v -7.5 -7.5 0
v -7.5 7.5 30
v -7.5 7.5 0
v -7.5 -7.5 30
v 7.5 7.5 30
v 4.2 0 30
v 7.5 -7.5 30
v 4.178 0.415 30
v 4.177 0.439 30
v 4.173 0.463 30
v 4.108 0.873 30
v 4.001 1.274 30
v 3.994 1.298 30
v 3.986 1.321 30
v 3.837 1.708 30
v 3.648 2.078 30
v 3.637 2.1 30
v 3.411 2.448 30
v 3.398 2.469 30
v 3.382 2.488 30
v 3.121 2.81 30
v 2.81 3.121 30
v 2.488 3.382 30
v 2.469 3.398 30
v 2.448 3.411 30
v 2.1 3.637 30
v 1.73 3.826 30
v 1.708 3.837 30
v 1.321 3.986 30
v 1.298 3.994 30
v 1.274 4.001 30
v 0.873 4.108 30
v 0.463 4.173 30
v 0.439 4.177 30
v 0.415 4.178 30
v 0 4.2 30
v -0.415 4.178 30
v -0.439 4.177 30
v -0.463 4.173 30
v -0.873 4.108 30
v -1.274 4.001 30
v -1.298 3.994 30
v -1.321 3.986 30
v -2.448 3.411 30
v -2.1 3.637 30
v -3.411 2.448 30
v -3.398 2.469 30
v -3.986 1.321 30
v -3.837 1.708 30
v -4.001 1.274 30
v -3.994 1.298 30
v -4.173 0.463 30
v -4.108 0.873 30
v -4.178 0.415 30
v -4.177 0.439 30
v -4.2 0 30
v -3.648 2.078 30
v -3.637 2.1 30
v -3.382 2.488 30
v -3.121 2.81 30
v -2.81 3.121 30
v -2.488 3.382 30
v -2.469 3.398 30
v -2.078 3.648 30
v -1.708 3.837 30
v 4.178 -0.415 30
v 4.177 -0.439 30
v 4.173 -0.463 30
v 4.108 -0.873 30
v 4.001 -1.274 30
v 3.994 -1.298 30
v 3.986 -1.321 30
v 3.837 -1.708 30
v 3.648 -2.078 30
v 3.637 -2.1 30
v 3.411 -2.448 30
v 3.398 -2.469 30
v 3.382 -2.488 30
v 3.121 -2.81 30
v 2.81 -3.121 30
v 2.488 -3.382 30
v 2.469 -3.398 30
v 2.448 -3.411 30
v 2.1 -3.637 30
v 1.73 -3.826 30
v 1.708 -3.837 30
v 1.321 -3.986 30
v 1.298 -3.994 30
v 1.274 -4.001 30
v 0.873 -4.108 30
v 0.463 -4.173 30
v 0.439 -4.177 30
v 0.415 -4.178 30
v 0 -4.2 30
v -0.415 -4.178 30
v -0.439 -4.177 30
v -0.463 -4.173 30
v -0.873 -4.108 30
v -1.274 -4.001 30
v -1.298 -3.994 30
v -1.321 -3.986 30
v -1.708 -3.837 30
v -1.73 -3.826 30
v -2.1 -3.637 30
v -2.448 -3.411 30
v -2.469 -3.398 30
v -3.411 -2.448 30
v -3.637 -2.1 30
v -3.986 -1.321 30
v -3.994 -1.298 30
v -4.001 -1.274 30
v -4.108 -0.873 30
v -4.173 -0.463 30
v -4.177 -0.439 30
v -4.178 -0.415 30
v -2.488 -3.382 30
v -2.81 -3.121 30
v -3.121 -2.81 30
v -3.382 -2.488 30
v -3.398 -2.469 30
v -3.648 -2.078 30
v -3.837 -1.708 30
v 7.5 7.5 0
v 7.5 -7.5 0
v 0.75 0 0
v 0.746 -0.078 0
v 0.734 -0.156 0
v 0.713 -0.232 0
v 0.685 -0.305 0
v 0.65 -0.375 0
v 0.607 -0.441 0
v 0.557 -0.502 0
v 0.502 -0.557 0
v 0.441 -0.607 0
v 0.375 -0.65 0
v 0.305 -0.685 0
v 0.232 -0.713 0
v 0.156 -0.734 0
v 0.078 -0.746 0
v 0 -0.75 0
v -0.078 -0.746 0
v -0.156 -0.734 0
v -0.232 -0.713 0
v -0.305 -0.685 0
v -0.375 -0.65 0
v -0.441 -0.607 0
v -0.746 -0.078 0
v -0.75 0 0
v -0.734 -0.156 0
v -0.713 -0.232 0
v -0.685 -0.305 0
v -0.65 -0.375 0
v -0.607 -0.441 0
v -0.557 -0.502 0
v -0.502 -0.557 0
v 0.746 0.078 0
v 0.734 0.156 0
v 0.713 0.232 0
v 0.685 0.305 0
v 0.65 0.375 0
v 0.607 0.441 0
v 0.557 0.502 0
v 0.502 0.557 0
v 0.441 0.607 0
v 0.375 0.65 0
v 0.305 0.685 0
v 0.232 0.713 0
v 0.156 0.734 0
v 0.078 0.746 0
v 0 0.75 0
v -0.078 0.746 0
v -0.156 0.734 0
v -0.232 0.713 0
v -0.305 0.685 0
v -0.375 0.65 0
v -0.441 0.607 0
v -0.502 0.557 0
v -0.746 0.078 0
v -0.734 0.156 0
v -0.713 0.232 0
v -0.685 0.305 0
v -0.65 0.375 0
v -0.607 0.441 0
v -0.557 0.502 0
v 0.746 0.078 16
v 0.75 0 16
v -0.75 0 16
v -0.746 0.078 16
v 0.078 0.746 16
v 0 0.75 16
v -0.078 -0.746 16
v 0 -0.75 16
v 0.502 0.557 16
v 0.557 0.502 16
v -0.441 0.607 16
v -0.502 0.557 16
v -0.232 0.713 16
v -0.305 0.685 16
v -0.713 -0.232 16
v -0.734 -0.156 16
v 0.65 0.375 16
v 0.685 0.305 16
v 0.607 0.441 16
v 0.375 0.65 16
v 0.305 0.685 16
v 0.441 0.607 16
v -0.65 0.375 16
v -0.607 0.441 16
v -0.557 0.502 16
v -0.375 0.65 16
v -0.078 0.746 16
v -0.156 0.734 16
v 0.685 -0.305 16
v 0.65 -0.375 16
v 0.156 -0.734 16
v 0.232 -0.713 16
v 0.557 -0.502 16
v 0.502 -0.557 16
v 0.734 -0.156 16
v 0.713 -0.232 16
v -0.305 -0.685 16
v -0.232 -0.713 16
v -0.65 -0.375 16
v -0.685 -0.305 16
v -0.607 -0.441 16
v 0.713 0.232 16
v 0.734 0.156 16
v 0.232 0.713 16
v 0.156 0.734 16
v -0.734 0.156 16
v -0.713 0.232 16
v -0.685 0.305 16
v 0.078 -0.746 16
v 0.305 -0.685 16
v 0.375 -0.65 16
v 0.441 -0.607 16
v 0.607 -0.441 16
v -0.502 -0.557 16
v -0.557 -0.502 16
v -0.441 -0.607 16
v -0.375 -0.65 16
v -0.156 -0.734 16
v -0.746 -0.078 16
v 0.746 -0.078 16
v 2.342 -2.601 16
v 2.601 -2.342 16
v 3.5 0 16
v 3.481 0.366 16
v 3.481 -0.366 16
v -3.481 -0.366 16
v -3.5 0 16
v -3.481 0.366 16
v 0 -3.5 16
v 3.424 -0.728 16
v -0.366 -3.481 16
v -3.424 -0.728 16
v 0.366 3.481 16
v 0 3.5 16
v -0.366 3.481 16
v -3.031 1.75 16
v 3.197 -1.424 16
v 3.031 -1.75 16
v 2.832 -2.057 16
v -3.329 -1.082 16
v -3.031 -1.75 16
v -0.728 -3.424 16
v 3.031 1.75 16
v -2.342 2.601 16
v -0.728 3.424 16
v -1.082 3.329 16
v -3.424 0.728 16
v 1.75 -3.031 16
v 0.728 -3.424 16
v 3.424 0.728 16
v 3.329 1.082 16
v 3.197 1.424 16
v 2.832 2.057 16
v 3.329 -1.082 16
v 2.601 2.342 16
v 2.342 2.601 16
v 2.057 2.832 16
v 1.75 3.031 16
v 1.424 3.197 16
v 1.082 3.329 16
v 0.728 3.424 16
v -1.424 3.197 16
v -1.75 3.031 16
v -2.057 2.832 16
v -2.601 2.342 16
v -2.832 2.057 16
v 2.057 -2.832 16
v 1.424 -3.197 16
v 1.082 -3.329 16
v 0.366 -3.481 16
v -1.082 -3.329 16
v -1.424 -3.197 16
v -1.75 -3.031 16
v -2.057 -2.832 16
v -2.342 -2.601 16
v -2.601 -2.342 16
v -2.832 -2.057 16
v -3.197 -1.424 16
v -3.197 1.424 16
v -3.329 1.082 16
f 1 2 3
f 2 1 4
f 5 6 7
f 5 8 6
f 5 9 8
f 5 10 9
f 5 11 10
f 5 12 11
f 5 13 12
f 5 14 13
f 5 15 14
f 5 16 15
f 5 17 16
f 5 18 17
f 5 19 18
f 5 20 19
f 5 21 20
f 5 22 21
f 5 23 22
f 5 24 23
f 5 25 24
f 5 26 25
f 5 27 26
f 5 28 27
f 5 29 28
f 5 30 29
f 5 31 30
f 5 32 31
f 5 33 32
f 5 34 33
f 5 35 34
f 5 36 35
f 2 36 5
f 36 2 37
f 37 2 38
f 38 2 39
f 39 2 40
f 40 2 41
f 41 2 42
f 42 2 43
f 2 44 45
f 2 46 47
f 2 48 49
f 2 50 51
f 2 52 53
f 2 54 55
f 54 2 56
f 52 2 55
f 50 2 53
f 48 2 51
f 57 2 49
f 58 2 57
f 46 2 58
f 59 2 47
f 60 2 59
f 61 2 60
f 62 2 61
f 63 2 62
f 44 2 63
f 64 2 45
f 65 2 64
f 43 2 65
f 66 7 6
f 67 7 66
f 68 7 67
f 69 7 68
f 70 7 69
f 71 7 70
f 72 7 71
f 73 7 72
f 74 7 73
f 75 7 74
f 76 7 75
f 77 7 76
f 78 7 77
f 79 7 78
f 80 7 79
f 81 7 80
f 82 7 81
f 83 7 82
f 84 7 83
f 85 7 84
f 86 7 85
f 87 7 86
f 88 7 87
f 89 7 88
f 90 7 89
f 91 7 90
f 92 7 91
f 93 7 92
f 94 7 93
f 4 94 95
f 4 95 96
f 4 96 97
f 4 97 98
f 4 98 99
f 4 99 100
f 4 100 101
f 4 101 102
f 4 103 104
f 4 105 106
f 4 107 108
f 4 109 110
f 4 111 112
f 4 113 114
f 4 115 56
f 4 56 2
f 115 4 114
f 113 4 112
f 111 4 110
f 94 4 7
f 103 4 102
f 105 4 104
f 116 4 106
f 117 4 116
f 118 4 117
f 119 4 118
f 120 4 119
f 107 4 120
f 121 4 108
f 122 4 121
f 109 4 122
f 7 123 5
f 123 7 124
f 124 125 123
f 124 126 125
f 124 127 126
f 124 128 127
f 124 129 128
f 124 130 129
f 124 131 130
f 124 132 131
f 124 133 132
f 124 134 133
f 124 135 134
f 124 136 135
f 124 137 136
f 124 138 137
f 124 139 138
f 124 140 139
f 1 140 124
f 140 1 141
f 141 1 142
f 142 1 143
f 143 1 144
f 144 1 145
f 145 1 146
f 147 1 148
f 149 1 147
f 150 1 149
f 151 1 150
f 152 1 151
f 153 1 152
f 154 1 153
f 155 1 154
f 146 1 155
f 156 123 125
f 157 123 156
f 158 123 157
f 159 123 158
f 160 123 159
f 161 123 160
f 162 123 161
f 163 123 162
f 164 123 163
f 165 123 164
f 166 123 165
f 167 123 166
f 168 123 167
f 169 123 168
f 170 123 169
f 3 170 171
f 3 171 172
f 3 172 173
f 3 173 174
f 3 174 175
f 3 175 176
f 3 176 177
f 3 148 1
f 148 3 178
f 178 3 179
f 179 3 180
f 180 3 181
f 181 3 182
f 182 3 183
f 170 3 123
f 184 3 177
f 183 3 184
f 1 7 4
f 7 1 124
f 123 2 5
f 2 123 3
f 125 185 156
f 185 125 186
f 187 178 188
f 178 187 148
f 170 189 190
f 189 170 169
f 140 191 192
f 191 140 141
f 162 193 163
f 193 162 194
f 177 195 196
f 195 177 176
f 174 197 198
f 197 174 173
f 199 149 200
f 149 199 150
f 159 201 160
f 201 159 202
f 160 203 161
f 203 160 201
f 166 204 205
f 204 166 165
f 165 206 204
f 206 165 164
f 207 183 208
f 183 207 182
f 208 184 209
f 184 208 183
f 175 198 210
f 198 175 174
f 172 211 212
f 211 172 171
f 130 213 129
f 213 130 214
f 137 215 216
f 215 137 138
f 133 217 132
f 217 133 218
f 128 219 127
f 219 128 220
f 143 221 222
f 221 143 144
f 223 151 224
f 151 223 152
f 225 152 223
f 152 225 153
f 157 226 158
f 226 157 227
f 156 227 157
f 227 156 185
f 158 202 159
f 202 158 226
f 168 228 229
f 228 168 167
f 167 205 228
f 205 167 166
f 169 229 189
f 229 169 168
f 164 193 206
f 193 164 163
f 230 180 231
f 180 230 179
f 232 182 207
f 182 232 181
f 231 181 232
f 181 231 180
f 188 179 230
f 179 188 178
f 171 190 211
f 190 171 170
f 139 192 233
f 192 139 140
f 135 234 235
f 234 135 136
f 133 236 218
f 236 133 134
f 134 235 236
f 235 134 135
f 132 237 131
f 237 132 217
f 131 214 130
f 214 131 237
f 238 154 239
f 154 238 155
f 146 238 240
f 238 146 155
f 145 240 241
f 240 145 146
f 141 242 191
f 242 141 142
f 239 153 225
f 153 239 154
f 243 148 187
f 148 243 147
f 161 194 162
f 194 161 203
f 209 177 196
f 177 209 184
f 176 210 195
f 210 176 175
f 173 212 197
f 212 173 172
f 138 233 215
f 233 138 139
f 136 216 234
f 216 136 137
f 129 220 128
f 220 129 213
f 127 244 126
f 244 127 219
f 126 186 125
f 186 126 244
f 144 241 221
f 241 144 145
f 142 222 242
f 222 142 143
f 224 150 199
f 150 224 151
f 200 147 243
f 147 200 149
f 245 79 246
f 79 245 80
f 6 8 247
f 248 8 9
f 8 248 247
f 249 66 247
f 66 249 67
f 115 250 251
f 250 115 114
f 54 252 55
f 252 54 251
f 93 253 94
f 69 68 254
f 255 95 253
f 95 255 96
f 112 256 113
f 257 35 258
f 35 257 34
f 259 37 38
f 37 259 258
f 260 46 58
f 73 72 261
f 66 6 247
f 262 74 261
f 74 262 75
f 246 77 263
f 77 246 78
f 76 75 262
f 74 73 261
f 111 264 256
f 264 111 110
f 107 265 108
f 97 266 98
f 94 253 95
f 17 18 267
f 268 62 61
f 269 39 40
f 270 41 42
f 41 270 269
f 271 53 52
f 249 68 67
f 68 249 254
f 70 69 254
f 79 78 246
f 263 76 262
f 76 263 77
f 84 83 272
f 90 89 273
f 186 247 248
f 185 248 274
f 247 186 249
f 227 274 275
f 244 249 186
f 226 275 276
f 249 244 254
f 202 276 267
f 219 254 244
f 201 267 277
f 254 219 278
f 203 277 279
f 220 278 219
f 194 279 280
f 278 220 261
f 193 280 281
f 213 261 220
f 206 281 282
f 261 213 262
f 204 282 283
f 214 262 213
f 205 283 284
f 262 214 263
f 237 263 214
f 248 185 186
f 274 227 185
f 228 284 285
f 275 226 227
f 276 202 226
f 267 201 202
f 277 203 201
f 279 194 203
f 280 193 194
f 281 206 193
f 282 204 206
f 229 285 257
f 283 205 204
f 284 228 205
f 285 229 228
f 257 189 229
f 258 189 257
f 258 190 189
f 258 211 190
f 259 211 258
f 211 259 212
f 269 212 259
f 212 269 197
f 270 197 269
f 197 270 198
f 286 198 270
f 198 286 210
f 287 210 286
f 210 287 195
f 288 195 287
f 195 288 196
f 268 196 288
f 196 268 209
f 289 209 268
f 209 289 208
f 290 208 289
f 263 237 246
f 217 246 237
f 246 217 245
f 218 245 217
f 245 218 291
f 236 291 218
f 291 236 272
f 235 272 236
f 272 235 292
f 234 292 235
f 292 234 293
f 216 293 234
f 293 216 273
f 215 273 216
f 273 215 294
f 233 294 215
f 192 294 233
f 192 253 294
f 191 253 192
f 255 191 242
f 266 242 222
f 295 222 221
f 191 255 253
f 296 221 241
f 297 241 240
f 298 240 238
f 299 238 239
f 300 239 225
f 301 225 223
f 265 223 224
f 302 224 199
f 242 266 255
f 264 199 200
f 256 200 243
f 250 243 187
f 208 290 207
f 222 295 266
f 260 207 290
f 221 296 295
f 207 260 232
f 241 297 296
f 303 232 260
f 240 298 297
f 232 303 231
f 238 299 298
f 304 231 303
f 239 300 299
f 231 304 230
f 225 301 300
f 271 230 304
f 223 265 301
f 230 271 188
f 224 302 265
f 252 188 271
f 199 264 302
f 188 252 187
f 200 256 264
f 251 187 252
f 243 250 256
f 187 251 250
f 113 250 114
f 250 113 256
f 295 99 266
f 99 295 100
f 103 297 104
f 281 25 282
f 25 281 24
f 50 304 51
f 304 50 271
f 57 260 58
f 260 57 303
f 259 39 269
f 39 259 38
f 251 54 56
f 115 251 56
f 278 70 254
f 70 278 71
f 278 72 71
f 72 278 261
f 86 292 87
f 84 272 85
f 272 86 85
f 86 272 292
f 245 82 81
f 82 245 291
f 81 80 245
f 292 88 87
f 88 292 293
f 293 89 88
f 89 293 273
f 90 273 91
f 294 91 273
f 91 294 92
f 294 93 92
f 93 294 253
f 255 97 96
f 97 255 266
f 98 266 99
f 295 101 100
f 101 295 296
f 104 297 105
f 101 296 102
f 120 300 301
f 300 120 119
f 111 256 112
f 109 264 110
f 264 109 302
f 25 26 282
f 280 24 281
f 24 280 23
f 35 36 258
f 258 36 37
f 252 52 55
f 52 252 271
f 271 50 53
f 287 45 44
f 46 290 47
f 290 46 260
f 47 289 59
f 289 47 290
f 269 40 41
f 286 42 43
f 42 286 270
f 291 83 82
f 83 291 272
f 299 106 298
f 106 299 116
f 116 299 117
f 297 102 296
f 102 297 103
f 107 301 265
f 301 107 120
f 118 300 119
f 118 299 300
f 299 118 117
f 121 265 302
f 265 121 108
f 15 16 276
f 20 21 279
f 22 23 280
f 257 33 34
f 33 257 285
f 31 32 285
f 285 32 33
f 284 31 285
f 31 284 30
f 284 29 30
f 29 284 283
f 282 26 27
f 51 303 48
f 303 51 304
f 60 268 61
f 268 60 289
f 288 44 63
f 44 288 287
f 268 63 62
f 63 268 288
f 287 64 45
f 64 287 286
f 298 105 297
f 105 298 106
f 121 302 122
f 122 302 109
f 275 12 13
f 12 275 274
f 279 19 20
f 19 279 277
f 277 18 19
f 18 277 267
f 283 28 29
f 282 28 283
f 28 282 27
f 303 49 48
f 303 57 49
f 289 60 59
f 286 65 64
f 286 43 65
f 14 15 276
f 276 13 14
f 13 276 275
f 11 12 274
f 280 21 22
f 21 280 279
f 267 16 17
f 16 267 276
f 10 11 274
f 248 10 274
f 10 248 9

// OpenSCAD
//HOLDER TO PIERCE STOPPER WITH NEEDLE
//design by AMV & KS
//17.11.2017, Warwick, UK

// PARAMETERS - All units in mm

// STOPPER
stopper_R_top = 8.5/2;
stopper_R_bottom = 7/2;
stopper_H = 14;

//NEEDLE
needle_R = 1.5/2; //0.3 for blue needle
needle_H = 35;
needle_protusion_H = 5; // room for the needle to come through other side
needle_cannal_H = needle_H - stopper_H - needle_protusion_H;

//SUPPORT
cubeW = 15;
cubeL = 15;
cubeH = stopper_H+needle_cannal_H;

difference(){
    //CUBE
    translate([0,0,cubeH/2]) color("black") cube([cubeW,cubeL,cubeH],true,$fn=60);  
    
    //NEEDLE
    translate([0,0,-1]) color("pink") cylinder(h = needle_H, r1 = needle_R, r2 = needle_R, center = false,$fn=60);
    
    //STOPPER
    translate([0,0,needle_cannal_H]) color("green") cylinder(h = stopper_H+1, r1 = stopper_R_bottom, r2 = stopper_R_top, center = false,$fn=60);

    //LOOK INSIDE CUBE
//    translate([0,-(cubeL/2+1),cubeH/2]) color("yellow") cube([cubeW+2,cubeL+2,cubeH+2],true,$fn=60);  


} // "TOP difference" ends
//
